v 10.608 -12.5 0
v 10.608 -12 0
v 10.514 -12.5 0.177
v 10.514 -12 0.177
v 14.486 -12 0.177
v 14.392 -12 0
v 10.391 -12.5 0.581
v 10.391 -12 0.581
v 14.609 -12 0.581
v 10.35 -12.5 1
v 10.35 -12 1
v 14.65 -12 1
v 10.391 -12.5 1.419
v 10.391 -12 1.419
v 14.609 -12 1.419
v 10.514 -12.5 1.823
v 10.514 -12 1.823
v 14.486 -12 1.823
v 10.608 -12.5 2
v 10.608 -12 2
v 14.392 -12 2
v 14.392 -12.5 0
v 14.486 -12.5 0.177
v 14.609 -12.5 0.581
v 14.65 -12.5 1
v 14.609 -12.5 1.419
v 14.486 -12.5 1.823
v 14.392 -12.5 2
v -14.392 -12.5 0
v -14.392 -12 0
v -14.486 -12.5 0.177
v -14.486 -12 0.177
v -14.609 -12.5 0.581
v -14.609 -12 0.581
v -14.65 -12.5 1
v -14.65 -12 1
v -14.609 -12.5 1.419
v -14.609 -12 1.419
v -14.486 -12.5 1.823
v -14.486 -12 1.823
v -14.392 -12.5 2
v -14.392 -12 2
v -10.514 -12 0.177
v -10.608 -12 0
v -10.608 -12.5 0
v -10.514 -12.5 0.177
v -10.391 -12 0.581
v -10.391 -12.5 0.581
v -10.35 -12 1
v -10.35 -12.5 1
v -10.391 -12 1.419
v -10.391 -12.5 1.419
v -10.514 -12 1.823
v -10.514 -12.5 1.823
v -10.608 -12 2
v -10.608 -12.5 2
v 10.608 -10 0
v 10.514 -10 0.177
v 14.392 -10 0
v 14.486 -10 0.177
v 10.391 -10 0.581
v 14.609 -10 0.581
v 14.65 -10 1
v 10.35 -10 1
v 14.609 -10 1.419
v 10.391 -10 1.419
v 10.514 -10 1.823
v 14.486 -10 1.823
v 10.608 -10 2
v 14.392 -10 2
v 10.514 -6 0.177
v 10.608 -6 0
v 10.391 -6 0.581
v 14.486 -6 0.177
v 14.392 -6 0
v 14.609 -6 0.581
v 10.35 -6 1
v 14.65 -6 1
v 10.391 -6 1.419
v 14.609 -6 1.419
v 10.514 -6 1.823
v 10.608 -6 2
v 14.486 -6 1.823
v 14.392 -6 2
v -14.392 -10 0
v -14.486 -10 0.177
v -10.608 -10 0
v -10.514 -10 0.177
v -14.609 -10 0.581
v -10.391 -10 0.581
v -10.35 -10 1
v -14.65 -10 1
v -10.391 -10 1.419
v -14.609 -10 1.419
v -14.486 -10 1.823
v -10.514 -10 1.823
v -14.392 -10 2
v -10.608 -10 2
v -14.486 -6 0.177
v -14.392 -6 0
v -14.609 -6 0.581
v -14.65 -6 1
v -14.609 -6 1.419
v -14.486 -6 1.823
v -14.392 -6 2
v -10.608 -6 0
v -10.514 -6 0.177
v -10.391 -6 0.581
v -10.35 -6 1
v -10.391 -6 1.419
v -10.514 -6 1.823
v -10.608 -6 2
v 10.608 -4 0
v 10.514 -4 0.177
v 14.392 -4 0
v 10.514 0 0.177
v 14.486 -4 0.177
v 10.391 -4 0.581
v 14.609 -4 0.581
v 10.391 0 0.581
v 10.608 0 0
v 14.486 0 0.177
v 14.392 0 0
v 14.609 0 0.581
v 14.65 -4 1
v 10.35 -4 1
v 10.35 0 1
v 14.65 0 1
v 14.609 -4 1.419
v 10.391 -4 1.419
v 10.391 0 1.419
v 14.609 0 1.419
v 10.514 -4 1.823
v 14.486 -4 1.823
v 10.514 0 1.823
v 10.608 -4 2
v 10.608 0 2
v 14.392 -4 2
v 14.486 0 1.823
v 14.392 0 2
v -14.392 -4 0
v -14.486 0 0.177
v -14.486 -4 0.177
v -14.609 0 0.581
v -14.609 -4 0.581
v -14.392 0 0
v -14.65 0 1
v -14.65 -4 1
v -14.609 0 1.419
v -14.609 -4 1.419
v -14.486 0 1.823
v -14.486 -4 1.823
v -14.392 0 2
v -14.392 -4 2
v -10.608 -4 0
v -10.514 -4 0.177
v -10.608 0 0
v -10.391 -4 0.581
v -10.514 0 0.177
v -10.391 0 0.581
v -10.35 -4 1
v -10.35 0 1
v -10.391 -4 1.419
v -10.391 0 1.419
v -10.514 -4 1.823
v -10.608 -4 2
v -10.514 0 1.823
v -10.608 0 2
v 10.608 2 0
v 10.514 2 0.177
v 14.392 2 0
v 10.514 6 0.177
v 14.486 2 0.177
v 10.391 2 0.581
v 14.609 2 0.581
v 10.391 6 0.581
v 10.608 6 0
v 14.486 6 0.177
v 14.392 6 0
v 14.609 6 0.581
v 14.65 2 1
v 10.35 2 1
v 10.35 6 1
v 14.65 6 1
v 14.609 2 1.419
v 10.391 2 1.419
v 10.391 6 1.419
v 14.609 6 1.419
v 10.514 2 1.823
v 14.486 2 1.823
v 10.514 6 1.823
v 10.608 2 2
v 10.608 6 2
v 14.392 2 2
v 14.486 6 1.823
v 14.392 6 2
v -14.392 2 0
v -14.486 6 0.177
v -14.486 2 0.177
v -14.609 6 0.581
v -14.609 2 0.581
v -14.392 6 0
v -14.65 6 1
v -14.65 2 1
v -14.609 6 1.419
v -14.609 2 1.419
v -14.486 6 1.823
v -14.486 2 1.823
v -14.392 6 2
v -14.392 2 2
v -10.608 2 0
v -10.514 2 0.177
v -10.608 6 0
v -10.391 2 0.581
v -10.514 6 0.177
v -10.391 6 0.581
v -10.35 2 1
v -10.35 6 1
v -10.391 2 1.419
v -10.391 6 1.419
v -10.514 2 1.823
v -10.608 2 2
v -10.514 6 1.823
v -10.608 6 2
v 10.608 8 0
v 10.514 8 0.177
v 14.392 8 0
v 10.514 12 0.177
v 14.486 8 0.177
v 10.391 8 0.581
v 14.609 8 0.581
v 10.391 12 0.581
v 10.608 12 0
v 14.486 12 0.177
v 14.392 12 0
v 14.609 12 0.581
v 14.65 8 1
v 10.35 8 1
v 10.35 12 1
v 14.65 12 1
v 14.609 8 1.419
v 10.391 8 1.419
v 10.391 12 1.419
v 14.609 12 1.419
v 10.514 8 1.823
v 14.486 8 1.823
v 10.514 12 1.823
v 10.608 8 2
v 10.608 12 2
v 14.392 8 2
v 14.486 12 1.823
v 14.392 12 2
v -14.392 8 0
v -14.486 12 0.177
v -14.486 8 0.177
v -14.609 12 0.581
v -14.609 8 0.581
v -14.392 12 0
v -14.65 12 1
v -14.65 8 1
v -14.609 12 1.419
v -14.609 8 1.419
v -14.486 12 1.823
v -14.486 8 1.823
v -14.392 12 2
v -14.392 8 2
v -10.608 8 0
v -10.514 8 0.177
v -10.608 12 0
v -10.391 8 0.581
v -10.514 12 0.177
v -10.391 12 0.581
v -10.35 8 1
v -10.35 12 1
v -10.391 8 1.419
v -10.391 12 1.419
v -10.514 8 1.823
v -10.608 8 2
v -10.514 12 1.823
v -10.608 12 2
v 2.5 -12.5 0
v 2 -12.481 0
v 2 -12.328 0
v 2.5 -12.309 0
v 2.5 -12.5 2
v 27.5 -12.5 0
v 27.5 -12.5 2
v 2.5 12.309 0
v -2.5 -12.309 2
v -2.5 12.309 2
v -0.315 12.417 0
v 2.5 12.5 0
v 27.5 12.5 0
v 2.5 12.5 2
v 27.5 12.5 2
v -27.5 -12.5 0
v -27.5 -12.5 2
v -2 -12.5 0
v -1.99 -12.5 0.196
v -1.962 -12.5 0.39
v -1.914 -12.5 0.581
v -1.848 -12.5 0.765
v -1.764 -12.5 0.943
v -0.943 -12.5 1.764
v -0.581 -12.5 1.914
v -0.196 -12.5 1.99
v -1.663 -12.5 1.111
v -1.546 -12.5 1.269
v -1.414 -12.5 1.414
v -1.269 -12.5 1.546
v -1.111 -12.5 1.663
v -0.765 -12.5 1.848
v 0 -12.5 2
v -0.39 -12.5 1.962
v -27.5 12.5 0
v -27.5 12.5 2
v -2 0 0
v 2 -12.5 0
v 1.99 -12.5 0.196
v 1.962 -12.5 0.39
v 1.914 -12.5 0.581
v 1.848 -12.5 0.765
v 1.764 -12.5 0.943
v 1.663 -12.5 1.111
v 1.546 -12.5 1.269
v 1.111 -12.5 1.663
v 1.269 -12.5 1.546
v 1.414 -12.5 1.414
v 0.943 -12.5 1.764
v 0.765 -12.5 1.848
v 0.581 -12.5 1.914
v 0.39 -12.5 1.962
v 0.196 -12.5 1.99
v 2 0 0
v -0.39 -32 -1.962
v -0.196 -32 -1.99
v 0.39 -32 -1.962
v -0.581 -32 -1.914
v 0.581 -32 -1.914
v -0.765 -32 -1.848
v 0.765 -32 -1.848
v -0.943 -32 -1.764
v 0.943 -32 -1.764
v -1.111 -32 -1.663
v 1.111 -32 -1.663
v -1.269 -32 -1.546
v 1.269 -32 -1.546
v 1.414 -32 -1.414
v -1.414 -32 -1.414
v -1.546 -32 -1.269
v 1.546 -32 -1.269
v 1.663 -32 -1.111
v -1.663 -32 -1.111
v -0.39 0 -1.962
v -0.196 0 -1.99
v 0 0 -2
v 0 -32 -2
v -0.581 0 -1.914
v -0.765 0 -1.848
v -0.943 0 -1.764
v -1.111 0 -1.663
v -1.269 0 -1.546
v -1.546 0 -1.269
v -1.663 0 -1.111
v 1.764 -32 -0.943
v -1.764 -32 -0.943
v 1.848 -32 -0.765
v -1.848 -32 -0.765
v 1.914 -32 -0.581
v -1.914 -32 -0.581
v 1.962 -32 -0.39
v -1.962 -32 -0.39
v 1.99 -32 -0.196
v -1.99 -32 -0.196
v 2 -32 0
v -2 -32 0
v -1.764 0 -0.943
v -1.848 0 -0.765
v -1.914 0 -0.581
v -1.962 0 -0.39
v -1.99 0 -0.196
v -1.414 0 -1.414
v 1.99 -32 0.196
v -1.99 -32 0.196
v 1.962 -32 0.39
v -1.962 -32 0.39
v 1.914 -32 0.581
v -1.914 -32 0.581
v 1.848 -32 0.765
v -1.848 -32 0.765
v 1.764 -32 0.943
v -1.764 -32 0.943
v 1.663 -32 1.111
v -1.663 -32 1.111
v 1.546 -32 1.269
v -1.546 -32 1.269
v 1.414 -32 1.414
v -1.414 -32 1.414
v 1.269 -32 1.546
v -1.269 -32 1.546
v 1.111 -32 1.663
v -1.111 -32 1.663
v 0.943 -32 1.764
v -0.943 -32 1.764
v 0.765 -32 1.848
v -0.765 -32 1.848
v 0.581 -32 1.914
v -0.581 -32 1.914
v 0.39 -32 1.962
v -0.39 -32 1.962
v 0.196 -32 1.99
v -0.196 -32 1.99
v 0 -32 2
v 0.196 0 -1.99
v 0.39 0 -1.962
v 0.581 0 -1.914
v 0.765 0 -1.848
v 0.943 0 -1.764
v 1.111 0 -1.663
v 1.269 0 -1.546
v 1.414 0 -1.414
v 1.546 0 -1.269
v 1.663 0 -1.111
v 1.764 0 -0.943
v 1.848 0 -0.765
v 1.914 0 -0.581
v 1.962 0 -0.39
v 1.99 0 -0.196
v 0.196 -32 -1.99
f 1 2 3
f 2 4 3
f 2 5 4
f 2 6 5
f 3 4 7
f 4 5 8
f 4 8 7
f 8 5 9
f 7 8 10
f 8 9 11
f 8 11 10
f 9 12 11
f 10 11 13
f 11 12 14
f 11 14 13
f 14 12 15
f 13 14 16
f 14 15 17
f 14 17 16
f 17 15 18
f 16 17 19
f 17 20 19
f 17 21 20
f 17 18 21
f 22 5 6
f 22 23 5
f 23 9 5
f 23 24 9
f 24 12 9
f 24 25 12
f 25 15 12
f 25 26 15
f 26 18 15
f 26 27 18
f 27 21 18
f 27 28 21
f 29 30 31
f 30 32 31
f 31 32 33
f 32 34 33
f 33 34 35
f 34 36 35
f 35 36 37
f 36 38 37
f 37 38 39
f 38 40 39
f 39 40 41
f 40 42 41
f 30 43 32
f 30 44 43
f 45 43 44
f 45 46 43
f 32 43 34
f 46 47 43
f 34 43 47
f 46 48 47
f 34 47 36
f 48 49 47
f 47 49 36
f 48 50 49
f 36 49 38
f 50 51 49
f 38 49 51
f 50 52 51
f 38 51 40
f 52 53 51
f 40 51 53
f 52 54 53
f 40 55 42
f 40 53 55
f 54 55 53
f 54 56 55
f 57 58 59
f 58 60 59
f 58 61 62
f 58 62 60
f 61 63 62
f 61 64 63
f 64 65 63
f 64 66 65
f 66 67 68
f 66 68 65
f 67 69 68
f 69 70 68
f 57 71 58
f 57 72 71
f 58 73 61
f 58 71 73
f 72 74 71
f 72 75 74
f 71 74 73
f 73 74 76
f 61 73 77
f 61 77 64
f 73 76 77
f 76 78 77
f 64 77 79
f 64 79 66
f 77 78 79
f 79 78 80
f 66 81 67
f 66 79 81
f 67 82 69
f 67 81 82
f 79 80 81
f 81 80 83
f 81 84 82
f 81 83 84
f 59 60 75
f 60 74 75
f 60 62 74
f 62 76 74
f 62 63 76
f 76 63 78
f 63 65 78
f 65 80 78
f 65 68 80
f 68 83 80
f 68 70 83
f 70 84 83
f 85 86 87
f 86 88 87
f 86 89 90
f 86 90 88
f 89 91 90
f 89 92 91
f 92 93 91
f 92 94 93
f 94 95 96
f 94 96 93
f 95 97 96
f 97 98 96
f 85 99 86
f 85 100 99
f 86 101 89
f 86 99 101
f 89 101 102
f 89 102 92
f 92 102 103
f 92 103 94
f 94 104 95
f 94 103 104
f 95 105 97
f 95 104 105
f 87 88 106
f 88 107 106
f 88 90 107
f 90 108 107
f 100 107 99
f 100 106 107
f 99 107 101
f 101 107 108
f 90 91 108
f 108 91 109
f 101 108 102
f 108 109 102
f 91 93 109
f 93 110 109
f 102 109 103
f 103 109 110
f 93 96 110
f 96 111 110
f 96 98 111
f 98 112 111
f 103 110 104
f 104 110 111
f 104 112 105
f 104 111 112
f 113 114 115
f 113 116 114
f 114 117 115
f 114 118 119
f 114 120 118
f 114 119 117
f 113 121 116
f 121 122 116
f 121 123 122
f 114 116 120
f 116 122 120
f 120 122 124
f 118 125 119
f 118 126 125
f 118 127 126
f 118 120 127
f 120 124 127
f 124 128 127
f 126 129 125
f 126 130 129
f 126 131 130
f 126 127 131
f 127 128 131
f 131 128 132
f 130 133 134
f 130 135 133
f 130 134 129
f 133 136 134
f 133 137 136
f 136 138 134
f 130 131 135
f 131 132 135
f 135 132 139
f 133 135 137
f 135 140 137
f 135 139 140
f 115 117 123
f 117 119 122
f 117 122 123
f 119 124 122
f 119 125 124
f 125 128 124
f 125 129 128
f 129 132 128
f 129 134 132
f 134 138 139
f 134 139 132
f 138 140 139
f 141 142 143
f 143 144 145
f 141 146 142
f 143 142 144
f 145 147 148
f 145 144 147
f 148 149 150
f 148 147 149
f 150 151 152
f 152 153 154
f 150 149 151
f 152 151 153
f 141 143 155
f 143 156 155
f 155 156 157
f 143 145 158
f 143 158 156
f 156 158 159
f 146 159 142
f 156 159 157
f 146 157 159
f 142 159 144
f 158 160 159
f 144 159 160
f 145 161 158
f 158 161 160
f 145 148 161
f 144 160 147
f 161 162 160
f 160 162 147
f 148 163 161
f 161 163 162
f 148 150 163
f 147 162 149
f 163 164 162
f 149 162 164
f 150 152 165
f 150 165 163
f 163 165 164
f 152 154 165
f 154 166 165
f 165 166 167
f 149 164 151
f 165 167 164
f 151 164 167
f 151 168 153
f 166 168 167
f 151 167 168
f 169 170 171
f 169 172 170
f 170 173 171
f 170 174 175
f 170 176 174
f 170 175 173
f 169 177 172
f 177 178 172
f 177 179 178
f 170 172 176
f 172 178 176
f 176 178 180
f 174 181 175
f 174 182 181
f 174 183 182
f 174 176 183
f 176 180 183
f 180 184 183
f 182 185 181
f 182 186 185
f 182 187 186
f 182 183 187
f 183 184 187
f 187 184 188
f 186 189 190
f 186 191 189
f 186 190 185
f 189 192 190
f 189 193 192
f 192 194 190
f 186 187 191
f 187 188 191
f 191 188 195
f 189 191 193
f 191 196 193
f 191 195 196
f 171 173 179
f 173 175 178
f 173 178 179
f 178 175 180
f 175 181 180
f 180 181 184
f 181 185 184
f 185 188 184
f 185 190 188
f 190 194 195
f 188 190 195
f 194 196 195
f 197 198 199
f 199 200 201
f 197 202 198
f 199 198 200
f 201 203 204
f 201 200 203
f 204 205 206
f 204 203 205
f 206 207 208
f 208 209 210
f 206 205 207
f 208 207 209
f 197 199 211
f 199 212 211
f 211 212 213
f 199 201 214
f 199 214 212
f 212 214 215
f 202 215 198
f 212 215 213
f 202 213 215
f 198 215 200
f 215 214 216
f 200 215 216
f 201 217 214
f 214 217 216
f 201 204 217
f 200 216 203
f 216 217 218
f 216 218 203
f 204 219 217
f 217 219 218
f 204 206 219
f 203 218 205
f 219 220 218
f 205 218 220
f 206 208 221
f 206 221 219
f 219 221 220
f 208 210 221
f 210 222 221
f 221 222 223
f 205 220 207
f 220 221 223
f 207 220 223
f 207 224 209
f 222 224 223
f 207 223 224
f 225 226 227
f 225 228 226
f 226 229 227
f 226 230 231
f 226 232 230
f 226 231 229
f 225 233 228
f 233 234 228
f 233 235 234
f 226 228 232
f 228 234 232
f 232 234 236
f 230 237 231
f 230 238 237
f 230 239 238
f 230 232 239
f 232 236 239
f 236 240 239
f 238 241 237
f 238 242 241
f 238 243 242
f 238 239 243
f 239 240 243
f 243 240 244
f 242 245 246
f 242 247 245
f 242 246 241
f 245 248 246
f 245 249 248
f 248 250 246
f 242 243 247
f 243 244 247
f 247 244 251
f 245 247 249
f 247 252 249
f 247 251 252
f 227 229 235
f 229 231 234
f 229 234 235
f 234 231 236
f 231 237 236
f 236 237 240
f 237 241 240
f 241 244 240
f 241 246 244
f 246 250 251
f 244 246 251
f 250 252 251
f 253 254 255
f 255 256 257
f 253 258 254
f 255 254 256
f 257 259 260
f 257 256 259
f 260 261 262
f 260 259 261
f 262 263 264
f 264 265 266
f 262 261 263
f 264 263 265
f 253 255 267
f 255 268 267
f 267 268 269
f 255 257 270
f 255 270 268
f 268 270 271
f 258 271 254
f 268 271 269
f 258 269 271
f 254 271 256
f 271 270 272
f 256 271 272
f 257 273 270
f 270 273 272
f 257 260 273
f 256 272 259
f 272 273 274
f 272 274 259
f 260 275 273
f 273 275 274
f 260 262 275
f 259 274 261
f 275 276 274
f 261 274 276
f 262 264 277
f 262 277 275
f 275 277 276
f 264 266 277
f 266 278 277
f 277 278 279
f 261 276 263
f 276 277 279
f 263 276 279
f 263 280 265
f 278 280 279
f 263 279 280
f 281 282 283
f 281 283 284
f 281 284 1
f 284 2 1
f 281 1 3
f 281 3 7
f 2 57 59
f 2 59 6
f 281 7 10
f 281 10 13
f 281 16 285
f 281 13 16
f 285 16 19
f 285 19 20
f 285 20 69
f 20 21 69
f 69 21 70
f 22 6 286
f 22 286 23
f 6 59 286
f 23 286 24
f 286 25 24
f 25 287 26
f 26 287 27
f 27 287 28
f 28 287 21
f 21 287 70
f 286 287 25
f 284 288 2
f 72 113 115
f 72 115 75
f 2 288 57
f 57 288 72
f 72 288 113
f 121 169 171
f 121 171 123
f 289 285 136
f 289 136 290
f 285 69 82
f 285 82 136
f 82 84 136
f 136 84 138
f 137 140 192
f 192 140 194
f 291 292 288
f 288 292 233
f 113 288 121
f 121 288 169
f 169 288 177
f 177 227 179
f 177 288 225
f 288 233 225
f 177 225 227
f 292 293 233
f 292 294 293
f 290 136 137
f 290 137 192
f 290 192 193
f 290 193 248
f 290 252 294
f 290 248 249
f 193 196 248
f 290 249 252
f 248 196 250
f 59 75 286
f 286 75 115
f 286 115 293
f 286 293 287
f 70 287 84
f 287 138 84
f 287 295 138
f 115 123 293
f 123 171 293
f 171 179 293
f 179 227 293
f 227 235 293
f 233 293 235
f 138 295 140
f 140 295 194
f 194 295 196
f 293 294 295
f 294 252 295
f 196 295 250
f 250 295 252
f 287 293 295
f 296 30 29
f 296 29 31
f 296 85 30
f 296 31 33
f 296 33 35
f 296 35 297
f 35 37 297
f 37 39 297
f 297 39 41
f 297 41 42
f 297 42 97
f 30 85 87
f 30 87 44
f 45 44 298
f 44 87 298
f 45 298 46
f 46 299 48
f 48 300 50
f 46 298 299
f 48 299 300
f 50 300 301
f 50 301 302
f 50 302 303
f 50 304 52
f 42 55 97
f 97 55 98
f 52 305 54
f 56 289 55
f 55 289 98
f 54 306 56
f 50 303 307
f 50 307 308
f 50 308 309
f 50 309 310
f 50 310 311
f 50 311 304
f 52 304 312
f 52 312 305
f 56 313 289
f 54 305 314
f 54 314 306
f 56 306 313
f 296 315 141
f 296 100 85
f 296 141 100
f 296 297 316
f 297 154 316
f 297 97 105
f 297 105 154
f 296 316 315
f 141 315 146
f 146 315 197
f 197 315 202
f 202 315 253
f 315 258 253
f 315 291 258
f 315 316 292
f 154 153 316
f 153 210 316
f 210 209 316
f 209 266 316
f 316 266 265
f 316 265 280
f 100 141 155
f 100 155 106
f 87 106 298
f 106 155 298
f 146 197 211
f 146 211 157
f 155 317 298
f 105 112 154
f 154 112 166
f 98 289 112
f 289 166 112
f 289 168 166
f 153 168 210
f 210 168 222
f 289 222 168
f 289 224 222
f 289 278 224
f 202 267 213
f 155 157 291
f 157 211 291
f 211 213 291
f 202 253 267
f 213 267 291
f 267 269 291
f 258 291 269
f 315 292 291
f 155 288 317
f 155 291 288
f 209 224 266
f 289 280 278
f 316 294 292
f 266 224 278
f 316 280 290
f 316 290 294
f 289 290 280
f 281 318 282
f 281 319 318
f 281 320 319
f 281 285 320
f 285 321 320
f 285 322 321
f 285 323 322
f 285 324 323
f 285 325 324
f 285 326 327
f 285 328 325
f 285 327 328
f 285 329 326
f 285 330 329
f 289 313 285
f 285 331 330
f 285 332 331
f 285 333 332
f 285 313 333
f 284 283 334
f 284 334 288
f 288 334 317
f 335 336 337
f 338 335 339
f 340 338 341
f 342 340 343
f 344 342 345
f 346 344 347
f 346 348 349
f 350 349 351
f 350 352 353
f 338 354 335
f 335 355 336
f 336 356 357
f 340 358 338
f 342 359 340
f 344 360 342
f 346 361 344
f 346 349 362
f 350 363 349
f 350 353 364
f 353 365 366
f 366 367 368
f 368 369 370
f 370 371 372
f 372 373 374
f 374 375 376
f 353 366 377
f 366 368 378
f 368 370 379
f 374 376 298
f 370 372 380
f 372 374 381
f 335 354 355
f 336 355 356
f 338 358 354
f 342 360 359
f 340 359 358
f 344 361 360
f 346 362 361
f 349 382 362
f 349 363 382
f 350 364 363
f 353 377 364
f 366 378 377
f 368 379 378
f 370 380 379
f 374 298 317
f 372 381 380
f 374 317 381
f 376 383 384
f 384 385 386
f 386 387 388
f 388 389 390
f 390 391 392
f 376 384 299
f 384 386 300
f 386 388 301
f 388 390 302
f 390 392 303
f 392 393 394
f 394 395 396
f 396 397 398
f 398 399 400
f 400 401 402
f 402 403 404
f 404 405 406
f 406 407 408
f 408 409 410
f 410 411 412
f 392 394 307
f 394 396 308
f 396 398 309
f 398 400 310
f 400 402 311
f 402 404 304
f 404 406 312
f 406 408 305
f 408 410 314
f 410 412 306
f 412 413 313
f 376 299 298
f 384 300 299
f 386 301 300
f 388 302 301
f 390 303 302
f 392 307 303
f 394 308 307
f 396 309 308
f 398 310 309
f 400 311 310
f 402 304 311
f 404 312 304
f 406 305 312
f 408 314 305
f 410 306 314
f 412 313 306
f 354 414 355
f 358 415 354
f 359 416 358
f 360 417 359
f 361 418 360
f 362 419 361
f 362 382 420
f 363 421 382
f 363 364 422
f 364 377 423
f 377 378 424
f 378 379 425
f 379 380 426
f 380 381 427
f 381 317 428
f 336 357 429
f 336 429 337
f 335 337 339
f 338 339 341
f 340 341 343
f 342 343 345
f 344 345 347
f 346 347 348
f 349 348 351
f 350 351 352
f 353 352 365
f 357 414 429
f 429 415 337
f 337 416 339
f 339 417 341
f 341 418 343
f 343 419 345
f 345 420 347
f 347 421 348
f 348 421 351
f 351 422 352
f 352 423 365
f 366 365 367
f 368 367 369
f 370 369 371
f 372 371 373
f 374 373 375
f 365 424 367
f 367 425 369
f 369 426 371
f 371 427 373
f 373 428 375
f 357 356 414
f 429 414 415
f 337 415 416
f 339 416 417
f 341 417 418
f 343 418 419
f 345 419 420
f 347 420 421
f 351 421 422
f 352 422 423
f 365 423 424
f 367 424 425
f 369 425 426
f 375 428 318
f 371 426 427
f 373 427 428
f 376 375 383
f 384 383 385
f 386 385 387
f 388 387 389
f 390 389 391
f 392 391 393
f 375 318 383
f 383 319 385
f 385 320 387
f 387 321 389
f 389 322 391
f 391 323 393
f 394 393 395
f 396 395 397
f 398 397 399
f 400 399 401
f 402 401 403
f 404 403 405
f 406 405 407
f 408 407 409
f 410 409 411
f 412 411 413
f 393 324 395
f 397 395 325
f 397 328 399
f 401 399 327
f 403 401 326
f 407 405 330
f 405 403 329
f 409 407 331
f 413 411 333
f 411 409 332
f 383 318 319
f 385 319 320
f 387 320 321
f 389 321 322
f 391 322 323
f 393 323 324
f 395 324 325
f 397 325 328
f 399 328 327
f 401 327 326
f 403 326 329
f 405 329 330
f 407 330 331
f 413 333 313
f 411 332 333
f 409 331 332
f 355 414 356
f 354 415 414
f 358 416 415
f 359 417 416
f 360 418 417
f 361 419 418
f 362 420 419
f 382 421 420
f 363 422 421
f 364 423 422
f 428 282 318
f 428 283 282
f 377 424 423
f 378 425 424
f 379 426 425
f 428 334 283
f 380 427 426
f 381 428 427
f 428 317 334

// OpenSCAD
// Parameters
leaf_w   = 30;      // Width along Y (pin axis)
leaf_h   = 25;      // Height along X
leaf_t   = 2;       // Thickness along Z
pin_d    = 4;
pin_l    = 32;
knuckle_d = 8;
hole_clearance = 0.3;
hole_d = pin_d + hole_clearance;     // 4.6 mm

// Knuckle positions (Y)
knuckle_y = [-12, -6, 0, 6, 12];

// Plate holes positions (pitch 8mm along Y)
plate_y = [-12, -4, 4];   // 3 holes per leaf

module leaf(side) {
    // side: -1 for left, +1 for right
    x_offset = side * (leaf_h/2);
    translate([x_offset, 0, leaf_t/2])
        difference() {
            cube([leaf_w, leaf_h, leaf_t], center=true);

            // Pin holes at knuckle positions
            for(y=knuckle_y) {
                translate([0,y,0])
                    rotate([90,0,0])   // hole along Y axis (pin direction)
                        cylinder(h=leaf_t*2, r=hole_d/2, $fn=32);
            }

            // M3 plate holes on opposite side of leaf
            for(y=plate_y) {
                translate([x_offset*sign(side)*1.5,y,0])   // offset slightly into leaf
                    cylinder(h=leaf_t+2, r=3.2/2, $fn=32);
            }
        }
}

module pin() {
    rotate([90,0,0])  // align along Y axis
        cylinder(h=pin_l, r=pin_d/2, $fn=64);
}

// Assemble in 180° open state (both leaves coplanar)
union() {
    leaf(-1);   // left leaf
    leaf(1);    // right leaf
    pin();      // shared pin axis
}
